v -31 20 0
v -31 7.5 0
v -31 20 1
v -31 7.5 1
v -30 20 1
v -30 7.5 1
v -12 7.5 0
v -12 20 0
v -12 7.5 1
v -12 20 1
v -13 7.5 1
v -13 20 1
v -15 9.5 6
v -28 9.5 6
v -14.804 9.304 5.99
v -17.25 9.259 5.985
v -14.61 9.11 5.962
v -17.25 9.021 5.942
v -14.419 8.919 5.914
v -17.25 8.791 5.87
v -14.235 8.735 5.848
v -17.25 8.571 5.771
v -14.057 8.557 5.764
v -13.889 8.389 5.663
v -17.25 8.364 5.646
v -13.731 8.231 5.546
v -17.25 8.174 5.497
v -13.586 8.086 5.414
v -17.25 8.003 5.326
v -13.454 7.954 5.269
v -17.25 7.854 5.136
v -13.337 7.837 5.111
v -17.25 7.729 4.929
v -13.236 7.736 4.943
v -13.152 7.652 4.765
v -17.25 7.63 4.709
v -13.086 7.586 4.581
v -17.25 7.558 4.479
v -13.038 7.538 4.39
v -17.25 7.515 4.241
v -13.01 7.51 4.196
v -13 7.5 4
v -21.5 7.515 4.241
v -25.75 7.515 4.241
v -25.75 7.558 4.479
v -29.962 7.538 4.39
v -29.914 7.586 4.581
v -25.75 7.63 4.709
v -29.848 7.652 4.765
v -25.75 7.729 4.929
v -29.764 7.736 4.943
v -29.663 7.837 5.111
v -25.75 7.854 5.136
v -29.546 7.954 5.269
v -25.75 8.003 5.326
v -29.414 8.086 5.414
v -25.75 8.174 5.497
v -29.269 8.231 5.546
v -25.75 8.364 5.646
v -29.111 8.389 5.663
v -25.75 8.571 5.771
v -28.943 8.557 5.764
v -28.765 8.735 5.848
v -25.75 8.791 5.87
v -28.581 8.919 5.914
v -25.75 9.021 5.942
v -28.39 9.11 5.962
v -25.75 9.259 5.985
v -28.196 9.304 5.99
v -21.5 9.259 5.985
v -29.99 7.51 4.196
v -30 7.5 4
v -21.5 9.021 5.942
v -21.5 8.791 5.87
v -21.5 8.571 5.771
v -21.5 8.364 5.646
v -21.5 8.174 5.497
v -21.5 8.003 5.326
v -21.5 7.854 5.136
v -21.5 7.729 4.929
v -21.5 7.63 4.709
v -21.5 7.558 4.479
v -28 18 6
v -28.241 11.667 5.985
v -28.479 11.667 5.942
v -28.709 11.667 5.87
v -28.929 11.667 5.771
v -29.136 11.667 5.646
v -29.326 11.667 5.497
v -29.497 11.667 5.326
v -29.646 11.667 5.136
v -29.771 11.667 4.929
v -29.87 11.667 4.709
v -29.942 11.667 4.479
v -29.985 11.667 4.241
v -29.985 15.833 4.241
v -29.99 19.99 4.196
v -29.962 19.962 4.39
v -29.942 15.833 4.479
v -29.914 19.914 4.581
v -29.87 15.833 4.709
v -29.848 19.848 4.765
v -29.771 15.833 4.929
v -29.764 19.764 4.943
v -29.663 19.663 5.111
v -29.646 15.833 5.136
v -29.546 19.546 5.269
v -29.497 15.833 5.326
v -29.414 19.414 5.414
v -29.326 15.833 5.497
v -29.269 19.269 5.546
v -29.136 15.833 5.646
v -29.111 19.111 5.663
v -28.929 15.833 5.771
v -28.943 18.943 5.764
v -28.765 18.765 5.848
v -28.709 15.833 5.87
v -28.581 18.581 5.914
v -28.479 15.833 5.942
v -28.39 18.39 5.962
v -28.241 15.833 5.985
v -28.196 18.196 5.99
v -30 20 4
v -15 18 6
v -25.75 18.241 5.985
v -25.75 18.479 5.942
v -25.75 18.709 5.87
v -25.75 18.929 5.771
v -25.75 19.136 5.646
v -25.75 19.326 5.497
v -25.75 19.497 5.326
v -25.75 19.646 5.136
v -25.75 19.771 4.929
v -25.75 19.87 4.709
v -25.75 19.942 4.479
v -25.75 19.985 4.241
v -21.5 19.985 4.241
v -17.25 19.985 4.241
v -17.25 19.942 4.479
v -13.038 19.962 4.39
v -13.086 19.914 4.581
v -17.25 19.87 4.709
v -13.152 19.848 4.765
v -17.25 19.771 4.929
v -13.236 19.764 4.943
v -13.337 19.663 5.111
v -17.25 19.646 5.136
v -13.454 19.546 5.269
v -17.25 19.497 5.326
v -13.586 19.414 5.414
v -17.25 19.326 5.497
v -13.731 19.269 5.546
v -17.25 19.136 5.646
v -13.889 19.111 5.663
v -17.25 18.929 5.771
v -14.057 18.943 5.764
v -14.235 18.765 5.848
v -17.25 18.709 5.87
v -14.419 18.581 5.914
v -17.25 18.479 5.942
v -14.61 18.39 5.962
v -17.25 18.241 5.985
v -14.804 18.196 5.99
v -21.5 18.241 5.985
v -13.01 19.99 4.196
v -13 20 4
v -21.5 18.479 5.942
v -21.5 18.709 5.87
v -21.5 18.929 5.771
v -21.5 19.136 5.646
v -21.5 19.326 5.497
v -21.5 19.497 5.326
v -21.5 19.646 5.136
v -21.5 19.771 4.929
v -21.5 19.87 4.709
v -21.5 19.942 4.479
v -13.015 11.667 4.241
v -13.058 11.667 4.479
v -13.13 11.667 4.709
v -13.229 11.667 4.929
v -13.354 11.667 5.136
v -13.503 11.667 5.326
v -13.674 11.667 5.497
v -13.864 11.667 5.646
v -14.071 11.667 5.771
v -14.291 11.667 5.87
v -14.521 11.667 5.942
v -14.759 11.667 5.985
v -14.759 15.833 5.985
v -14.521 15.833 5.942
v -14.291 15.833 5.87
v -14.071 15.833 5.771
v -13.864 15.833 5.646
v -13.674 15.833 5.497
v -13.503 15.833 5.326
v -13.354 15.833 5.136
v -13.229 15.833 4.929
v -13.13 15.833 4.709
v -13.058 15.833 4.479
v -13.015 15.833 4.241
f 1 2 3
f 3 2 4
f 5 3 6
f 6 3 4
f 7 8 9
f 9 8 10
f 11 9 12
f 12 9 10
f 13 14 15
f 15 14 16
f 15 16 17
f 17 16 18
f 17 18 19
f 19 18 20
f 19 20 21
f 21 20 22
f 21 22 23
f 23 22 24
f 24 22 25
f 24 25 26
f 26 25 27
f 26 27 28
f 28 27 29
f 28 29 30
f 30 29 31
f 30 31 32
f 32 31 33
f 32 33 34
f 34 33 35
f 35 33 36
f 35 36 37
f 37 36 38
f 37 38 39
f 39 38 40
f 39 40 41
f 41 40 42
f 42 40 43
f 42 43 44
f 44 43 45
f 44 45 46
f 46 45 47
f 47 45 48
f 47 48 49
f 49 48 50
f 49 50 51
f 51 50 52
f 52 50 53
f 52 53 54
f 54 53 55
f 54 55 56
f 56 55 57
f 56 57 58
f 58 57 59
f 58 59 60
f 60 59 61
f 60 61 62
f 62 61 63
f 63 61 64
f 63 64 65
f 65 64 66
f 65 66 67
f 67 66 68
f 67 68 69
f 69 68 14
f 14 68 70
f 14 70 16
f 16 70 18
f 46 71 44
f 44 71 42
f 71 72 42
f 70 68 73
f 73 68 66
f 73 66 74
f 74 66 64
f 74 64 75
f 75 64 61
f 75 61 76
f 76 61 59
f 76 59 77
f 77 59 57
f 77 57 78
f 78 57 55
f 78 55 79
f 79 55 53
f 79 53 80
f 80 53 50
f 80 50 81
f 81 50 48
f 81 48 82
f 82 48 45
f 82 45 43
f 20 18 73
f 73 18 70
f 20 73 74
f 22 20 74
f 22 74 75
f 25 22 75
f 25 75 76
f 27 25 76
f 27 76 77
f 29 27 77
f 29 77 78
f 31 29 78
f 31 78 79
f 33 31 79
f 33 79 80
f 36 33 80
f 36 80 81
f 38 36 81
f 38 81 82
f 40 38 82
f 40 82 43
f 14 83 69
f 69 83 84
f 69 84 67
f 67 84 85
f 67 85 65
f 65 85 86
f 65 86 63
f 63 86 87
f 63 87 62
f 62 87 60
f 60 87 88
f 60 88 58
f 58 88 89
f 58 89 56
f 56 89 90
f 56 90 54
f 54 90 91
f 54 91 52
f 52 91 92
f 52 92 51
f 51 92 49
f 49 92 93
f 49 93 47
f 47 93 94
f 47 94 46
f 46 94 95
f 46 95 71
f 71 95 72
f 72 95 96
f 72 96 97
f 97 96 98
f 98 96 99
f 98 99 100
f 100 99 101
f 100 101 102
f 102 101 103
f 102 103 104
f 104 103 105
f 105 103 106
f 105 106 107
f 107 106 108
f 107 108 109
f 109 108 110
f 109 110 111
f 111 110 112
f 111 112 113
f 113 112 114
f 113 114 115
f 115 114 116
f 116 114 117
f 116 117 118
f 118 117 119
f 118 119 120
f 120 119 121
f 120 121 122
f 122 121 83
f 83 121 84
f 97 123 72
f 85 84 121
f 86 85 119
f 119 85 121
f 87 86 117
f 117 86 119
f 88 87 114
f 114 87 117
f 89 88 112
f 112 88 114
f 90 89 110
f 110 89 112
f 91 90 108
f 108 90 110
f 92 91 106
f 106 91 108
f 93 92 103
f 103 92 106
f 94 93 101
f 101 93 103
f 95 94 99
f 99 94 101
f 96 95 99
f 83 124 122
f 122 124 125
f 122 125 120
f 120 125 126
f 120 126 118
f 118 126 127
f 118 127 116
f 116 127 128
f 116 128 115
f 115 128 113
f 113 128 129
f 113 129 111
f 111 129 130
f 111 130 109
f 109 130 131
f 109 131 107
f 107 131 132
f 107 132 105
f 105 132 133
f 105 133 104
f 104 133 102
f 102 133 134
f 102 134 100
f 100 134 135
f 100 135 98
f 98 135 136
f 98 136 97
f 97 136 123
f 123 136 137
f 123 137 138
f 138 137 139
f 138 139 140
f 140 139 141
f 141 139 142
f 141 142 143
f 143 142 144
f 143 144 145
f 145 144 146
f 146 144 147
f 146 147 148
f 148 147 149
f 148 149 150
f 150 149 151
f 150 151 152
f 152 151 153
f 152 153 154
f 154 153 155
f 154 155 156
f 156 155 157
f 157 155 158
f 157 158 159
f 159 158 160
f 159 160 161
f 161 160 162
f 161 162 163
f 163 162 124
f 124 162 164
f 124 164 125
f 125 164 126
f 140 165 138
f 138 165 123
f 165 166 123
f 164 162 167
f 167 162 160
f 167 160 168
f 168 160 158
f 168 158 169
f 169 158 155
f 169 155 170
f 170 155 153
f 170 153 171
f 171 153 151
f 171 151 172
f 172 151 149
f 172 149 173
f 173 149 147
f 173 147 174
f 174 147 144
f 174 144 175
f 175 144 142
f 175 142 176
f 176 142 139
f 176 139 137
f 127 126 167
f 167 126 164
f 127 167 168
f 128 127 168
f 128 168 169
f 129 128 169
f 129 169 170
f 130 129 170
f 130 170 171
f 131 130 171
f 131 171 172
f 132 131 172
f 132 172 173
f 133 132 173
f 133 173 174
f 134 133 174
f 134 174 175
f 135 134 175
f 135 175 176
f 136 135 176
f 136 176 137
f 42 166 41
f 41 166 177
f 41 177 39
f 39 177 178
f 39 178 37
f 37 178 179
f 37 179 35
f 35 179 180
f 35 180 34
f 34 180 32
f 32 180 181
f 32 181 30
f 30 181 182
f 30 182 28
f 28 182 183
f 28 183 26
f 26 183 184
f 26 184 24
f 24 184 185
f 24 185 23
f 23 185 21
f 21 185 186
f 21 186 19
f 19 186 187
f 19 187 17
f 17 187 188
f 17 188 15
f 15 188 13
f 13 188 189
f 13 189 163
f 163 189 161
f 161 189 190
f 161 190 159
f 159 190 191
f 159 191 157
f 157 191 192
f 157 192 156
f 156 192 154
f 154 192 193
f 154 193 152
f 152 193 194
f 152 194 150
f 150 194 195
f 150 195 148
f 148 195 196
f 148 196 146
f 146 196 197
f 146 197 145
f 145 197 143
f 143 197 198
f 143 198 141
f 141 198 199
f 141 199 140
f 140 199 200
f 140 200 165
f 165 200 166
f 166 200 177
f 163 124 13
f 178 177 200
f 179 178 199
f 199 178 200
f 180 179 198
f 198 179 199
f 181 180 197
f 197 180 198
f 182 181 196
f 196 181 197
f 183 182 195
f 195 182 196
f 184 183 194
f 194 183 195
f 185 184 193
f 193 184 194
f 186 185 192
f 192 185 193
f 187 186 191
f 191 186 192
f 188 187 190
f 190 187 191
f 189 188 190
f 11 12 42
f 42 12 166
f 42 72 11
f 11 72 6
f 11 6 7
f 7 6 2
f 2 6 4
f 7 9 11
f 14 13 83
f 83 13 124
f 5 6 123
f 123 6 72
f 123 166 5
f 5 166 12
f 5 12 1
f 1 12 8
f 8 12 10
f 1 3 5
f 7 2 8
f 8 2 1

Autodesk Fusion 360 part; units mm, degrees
sketch "Sketch1" plane through (0, 0, 0) normal (0, 0, 1) x (1, 0, 0)
  line L0 (-30, 20) -> (-13, 20)
  line L1 (-13, 20) -> (-13, 7.5)
  line L2 (-13, 7.5) -> (-30, 7.5)
  line L3 (-30, 7.5) -> (-30, 20)
  dimension "d1" = 17
  dimension "d2" = 12.5
extrude "Extrude1" add sketch "Sketch1" along normal blind 6
fillet "Fillet1" radius 2 4 edges at (-21.5, 20, 6) (-13, 13.75, 6) (-30, 13.75, 6) (-21.5, 7.5, 6)
sketch "Sketch3" plane through (0, 0, 0) normal (0, 0, -1) x (-1, 0, 0)
  line L0 (13, 7.5) -> (30, 7.5)
  line L1 (30, 7.5) -> (30, 20)
  line L2 (30, 20) -> (13, 20)
  line L3 (13, 20) -> (13, 7.5)
  line L4 (13, 20) -> (30, 20)
  line L5 (30, 20) -> (30, 7.5)
  line L6 (30, 7.5) -> (13, 7.5)
  line L7 (13, 7.5) -> (13, 20)
  line L8 (12, 20) -> (31, 20)
  line L9 (12, 7.5) -> (31, 7.5)
  line L10 (12, 20) -> (31, 20)
  line L11 (31, 20) -> (31, 7.5)
  line L12 (31, 7.5) -> (12, 7.5)
  line L13 (12, 7.5) -> (12, 20)
  point P0 (21.5, 20)
  point P1 (21.5, 7.5)
  dimension "d10" = 19
  dimension "d11" = 19
extrude "Extrude3" add sketch "Sketch3" against normal blind 1 contours L3 L7 L8 L9 L10 L12 L13 | L1 L5 L8 L9 L10 L11 L12
